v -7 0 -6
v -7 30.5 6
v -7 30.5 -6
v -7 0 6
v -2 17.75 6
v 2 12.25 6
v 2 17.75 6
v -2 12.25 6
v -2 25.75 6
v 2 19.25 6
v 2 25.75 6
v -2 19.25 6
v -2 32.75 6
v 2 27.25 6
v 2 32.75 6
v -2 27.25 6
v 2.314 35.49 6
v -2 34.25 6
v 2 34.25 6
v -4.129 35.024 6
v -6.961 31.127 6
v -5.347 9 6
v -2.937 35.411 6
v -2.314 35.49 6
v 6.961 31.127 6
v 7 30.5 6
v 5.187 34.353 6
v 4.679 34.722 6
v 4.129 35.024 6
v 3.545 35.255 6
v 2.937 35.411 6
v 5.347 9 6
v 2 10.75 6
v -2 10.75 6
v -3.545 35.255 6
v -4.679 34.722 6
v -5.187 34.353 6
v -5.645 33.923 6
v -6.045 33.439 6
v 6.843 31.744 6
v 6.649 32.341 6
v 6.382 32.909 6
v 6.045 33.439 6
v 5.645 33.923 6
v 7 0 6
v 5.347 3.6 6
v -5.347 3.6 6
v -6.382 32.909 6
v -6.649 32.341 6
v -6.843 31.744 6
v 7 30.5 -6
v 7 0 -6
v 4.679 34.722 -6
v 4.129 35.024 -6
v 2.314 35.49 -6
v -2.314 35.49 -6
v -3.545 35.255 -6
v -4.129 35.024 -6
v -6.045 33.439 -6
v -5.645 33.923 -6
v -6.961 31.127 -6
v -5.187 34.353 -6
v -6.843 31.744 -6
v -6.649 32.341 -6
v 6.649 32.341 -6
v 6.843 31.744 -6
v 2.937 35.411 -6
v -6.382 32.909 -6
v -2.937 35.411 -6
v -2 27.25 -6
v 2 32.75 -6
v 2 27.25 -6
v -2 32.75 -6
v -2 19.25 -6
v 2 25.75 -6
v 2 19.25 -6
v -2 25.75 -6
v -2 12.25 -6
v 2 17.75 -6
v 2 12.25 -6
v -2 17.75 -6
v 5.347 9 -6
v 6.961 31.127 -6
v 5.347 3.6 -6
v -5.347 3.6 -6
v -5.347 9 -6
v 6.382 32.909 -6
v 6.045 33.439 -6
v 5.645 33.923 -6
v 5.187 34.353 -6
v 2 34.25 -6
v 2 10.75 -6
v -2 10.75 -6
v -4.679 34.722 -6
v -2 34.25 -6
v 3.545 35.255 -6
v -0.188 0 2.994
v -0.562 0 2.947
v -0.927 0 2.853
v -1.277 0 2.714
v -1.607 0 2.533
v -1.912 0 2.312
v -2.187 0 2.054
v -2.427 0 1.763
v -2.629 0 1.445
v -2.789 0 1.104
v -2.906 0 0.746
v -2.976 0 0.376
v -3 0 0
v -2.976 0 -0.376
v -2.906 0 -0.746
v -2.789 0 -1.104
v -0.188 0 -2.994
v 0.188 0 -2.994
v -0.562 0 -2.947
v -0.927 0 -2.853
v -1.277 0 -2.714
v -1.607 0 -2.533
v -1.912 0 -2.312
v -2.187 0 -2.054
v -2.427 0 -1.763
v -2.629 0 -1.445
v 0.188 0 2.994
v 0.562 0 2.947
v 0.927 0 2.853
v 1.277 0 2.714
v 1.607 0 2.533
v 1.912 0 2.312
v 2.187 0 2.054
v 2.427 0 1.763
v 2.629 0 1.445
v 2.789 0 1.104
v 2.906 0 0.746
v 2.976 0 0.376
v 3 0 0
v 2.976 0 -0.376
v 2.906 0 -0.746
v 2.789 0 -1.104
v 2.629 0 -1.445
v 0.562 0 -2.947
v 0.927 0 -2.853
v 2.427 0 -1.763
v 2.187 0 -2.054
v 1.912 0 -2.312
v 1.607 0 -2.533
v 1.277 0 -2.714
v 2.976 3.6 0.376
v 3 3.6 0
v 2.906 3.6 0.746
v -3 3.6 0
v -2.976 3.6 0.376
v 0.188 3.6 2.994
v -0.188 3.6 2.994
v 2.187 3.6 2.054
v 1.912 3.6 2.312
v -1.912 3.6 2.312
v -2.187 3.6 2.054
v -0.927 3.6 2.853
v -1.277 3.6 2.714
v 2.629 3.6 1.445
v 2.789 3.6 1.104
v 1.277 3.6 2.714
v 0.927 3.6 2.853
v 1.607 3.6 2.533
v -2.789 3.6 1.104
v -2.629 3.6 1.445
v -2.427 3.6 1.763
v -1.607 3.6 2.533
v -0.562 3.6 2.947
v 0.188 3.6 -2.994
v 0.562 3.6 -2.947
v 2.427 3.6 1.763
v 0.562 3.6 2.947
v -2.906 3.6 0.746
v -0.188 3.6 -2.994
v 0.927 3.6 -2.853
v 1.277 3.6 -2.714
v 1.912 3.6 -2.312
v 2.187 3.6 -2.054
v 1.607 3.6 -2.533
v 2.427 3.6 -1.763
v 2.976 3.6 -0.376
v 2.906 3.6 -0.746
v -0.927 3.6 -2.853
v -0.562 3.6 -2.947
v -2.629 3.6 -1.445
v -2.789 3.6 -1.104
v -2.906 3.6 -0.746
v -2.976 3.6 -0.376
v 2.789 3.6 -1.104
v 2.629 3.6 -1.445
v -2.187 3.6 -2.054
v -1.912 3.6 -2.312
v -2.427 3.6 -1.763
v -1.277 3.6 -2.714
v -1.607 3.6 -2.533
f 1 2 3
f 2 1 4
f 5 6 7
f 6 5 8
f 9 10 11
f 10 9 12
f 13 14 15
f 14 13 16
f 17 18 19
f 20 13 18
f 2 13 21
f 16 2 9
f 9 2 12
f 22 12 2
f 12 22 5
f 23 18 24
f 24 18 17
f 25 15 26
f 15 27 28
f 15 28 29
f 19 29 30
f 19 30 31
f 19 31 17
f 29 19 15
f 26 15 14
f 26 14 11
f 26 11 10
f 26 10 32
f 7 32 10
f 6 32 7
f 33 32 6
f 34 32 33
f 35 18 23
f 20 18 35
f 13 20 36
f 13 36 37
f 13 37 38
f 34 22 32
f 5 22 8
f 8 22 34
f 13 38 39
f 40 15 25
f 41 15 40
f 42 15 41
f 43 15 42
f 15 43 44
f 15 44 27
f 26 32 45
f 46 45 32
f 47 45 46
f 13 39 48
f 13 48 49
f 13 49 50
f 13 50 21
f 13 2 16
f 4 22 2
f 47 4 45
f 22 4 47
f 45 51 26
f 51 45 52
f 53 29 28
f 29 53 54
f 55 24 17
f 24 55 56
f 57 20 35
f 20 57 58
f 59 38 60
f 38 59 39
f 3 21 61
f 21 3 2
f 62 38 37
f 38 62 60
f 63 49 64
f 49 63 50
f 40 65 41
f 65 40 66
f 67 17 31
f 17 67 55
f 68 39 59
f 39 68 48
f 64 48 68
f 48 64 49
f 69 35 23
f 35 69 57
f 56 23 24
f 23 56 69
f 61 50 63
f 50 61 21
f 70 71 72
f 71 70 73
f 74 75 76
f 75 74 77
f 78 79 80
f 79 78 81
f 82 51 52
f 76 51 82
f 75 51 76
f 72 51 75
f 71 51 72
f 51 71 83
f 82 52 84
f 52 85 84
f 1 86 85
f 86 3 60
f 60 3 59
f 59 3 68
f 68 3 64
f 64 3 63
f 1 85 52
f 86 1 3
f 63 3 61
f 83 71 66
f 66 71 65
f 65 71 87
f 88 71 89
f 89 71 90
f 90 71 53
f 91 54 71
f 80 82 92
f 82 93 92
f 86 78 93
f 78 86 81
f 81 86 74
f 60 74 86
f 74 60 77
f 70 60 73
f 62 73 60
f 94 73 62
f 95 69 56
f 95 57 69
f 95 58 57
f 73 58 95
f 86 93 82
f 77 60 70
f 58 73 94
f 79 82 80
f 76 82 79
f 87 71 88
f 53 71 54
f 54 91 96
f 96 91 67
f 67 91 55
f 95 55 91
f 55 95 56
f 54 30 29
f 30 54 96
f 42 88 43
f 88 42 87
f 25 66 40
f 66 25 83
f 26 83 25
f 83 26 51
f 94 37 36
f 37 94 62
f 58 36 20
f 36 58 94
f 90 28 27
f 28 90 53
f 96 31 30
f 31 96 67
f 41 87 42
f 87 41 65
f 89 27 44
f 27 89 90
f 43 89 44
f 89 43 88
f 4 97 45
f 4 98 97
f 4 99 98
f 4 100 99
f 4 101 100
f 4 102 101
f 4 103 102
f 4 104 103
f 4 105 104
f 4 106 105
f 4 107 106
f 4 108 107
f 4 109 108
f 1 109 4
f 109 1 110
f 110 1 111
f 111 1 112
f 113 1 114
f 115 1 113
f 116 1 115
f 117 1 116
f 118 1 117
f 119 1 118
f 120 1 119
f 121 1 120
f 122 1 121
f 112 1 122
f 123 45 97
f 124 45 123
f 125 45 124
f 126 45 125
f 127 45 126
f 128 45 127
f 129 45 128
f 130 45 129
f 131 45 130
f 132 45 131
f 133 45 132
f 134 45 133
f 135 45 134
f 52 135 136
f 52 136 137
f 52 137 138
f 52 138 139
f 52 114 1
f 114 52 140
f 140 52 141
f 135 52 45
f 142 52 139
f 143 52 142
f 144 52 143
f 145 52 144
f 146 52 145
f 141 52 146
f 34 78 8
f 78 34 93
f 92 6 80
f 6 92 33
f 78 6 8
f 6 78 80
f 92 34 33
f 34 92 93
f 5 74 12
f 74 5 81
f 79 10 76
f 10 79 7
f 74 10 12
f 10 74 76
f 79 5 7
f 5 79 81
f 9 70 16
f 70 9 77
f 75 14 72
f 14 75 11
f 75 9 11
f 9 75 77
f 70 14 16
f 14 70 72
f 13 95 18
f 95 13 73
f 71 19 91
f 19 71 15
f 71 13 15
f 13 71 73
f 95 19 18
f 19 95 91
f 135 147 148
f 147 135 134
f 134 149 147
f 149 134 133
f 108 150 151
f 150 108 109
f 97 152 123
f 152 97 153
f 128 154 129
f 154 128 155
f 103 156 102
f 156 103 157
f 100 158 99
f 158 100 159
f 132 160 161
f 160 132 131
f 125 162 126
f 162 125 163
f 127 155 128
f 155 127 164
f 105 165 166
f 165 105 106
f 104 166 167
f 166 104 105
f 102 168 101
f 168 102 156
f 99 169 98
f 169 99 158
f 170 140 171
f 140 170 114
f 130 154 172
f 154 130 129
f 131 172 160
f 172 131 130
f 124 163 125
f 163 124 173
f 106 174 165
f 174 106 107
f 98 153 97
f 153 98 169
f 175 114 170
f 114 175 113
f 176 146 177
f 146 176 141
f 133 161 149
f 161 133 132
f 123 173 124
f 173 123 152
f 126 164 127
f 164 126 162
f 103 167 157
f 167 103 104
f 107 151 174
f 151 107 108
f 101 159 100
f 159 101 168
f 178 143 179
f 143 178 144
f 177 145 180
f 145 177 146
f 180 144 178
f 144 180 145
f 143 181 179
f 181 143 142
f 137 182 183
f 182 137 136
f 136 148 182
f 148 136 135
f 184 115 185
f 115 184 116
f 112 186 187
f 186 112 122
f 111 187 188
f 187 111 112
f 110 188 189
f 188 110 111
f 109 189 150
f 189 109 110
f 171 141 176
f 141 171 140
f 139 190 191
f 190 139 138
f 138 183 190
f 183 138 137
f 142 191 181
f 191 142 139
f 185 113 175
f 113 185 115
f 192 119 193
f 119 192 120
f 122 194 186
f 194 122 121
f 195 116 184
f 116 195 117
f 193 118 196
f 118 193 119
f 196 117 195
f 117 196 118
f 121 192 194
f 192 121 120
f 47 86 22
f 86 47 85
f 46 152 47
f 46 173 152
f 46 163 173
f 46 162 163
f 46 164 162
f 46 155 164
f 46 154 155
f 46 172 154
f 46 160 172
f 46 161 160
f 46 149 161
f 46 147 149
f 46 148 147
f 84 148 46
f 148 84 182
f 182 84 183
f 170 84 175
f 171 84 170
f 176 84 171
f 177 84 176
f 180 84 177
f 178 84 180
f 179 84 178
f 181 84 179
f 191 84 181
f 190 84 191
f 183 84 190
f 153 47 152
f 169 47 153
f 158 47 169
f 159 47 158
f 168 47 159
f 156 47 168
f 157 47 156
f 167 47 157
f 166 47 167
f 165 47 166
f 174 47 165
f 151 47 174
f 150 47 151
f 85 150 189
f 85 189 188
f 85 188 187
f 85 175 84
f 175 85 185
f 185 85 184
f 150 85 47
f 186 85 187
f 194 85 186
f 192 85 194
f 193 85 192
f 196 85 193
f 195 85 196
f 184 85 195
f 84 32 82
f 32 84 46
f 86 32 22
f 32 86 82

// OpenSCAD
$fn = 50;


difference() {
	union() {
		translate(v = [0, 21.0000000000, -6.0000000000]) {
			rotate(a = [0, 0, 0]) {
				hull() {
					translate(v = [-2.0000000000, 9.5000000000, 0]) {
						rotate(a = [0, 0, 0]) {
							translate(v = [0, 0, 0]) {
								rotate(a = [0, 0, 0]) {
									cylinder(h = 12, r = 5);
								}
							}
						}
					}
					translate(v = [2.0000000000, 9.5000000000, 0]) {
						rotate(a = [0, 0, 0]) {
							translate(v = [0, 0, 0]) {
								rotate(a = [0, 0, 0]) {
									cylinder(h = 12, r = 5);
								}
							}
						}
					}
					translate(v = [-2.0000000000, -9.5000000000, 0]) {
						rotate(a = [0, 0, 0]) {
							translate(v = [0, 0, 0]) {
								rotate(a = [0, 0, 0]) {
									cylinder(h = 12, r = 5);
								}
							}
						}
					}
					translate(v = [2.0000000000, -9.5000000000, 0]) {
						rotate(a = [0, 0, 0]) {
							translate(v = [0, 0, 0]) {
								rotate(a = [0, 0, 0]) {
									cylinder(h = 12, r = 5);
								}
							}
						}
					}
				}
			}
		}
		translate(v = [-7.0000000000, 0, -6.0000000000]) {
			rotate(a = [0, 0, 0]) {
				cube(size = [14, 13.5000000000, 12]);
			}
		}
	}
	union() {
		translate(v = [-2.0000000000, 10.7500000000, -50]) {
			rotate(a = [0, 0, 0]) {
				cube(size = [4, 1.5000000000, 100]);
			}
		}
		translate(v = [-2.0000000000, 17.7500000000, -50]) {
			rotate(a = [0, 0, 0]) {
				cube(size = [4, 1.5000000000, 100]);
			}
		}
		translate(v = [-2.0000000000, 25.7500000000, -50]) {
			rotate(a = [0, 0, 0]) {
				cube(size = [4, 1.5000000000, 100]);
			}
		}
		translate(v = [-2.0000000000, 32.7500000000, -50]) {
			rotate(a = [0, 0, 0]) {
				cube(size = [4, 1.5000000000, 100]);
			}
		}
		translate(v = [0.0000000000, 8, 0]) {
			rotate(a = [90, 0, 0]) {
				cylinder(h = 8, r = 3.0000000000);
			}
		}
		translate(v = [-5.3466204506, 9, -25]) {
			rotate(a = [90, 0, 0]) {
				cube(size = [10.6932409012, 100, 5.4000000000]);
			}
		}
	}
}
